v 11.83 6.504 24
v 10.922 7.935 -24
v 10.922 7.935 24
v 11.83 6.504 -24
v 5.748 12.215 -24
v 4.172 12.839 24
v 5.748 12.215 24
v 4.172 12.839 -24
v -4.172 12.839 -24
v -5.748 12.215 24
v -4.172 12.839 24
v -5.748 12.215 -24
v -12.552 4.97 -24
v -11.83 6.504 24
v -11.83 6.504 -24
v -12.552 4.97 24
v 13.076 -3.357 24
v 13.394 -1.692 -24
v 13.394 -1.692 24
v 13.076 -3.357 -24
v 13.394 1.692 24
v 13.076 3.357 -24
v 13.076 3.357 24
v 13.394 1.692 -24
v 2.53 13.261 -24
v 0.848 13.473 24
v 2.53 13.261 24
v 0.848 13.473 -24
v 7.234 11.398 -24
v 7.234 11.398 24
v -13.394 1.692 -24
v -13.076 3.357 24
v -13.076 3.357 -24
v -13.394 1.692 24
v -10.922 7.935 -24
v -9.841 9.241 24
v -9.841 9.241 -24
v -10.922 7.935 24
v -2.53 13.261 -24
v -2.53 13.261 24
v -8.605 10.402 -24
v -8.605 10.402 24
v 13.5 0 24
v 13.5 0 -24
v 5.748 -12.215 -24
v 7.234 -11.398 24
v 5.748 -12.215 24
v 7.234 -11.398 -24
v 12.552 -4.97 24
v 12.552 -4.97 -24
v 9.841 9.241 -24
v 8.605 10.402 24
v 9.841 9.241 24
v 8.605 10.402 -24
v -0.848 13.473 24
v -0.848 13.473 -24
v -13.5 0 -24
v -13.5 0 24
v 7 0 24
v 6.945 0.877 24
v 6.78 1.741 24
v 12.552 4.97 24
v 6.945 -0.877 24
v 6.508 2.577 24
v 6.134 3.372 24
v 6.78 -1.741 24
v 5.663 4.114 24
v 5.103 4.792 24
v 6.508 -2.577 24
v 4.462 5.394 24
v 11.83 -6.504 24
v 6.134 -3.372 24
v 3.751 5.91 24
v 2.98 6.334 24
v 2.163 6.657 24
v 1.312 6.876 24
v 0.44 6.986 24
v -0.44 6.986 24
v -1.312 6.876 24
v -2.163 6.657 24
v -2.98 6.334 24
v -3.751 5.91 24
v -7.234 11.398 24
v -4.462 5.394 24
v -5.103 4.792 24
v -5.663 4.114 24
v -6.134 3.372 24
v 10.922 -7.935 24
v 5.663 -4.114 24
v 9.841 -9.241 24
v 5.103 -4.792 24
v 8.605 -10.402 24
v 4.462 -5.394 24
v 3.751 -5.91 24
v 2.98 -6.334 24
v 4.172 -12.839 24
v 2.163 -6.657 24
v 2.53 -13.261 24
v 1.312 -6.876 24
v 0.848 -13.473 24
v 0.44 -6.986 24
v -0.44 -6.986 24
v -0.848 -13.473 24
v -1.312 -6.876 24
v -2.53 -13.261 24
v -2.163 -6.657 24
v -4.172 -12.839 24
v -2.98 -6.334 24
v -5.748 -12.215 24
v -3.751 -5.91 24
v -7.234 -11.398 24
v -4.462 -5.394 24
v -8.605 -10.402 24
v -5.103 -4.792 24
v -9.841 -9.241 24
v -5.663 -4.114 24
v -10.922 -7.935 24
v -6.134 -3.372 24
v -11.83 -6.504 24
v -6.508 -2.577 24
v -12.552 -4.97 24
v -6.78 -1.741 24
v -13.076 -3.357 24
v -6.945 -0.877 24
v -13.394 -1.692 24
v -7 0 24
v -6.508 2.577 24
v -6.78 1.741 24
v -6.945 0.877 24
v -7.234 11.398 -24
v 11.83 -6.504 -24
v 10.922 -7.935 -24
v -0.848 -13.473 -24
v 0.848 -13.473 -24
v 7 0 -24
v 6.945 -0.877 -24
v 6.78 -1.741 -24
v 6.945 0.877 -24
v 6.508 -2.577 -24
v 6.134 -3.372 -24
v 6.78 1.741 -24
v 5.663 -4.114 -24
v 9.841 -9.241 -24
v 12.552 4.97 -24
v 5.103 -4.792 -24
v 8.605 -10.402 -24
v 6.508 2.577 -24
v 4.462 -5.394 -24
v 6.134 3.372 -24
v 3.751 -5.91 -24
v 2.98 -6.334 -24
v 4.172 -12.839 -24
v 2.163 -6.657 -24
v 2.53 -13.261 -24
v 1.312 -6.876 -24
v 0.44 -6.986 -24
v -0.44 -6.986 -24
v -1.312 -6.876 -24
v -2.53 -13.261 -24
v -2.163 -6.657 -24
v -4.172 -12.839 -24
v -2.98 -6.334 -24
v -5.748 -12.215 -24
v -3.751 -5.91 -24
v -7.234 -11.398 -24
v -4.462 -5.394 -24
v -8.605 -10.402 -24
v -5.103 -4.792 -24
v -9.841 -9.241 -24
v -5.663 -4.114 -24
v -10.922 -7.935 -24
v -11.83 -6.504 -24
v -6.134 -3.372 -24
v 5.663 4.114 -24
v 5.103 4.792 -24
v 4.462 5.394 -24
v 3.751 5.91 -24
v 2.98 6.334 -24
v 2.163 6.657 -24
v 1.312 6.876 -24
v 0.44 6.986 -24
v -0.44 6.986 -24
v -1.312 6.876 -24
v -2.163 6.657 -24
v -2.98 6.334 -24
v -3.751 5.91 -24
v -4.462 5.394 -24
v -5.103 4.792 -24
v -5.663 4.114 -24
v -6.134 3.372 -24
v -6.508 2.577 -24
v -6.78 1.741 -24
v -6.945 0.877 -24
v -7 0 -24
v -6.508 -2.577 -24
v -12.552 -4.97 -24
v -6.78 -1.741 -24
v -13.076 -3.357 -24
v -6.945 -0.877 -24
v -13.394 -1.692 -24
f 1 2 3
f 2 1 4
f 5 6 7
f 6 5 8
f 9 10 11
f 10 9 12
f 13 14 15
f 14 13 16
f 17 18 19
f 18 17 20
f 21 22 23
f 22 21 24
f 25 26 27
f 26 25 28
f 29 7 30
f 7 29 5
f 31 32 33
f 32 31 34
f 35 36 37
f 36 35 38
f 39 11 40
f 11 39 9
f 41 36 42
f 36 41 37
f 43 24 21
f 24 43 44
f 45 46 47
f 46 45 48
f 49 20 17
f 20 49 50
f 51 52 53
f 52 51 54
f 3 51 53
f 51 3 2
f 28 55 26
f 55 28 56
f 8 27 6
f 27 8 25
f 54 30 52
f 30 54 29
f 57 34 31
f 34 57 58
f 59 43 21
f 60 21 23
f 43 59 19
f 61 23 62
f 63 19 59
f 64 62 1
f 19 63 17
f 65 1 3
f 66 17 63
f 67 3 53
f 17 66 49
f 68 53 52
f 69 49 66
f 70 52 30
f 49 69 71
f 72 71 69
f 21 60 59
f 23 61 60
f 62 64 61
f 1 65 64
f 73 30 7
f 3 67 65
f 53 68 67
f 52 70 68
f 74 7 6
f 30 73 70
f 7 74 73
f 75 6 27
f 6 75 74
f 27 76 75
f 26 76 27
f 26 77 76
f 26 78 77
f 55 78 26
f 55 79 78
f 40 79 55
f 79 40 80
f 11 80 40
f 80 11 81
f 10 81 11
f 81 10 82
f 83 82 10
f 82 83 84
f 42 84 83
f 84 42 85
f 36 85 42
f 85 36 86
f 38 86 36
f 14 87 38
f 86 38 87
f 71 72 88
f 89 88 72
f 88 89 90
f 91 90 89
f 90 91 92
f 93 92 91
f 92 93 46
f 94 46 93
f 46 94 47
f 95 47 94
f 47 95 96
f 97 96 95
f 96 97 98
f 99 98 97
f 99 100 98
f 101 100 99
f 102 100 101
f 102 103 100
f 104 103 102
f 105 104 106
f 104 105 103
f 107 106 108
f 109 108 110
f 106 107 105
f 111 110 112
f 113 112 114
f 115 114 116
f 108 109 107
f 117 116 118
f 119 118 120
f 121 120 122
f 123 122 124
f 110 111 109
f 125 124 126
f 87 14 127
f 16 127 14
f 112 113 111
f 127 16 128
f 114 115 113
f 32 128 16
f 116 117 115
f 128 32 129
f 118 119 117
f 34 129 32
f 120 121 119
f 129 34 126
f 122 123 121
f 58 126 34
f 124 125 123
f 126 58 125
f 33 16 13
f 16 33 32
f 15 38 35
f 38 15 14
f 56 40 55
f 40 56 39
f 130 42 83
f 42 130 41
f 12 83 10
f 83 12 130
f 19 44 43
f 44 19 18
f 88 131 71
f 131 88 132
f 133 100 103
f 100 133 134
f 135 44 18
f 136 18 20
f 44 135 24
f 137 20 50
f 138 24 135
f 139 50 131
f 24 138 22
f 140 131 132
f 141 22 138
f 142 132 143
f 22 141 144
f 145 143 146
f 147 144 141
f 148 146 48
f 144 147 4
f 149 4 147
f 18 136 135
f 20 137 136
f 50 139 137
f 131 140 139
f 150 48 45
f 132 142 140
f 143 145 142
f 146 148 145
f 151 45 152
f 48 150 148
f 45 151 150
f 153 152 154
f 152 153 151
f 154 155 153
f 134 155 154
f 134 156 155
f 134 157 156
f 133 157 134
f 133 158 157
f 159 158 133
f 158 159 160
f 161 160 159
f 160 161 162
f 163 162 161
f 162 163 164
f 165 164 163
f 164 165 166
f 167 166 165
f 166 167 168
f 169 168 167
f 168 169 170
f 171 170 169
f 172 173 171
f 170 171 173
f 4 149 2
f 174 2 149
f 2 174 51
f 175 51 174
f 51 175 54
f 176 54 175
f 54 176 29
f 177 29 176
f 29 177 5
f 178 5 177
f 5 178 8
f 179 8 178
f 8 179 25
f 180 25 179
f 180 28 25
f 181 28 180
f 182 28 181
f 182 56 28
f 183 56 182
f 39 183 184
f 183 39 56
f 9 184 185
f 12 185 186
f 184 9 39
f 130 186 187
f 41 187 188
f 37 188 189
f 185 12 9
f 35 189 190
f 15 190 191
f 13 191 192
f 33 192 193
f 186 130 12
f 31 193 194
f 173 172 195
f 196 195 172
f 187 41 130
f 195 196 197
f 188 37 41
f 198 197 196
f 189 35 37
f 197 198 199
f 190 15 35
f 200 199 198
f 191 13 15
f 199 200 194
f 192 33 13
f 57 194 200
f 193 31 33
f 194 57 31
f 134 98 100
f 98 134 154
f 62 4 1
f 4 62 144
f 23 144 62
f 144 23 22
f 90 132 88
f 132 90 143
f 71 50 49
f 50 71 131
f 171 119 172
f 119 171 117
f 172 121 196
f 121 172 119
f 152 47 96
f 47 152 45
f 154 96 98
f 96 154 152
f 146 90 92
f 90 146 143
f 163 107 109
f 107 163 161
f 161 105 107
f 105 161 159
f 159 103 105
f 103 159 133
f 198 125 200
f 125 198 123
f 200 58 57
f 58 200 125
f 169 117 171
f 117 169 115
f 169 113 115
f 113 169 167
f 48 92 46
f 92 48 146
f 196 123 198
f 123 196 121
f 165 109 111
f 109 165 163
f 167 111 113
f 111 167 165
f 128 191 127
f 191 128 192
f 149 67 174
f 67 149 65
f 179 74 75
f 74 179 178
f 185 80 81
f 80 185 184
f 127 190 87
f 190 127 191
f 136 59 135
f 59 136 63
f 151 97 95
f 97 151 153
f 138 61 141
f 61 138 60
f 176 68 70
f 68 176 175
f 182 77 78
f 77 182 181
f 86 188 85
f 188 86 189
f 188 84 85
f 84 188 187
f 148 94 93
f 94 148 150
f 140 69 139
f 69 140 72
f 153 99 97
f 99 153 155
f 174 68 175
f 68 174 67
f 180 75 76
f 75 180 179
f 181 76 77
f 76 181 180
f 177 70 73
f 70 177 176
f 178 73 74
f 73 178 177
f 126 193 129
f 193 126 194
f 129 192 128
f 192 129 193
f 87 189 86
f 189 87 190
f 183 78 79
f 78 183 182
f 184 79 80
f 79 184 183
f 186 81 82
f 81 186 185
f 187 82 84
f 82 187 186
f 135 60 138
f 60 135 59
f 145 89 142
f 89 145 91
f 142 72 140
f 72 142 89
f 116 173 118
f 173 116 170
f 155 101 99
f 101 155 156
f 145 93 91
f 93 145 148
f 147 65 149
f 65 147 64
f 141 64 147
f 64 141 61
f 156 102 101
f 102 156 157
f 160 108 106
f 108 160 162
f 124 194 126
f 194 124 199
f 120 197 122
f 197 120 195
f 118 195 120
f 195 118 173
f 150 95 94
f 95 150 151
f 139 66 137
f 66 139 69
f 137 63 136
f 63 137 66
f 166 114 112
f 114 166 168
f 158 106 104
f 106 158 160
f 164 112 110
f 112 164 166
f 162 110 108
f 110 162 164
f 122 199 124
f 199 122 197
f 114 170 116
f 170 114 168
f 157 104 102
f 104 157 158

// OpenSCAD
$fn = 50;


difference() {
	union() {
		translate(v = [0, 0, -24.0000000000]) {
			cylinder(h = 48, r = 13.5000000000);
		}
	}
	union() {
		translate(v = [0, 0, -100.0000000000]) {
			cylinder(h = 200, r = 7);
		}
	}
}
